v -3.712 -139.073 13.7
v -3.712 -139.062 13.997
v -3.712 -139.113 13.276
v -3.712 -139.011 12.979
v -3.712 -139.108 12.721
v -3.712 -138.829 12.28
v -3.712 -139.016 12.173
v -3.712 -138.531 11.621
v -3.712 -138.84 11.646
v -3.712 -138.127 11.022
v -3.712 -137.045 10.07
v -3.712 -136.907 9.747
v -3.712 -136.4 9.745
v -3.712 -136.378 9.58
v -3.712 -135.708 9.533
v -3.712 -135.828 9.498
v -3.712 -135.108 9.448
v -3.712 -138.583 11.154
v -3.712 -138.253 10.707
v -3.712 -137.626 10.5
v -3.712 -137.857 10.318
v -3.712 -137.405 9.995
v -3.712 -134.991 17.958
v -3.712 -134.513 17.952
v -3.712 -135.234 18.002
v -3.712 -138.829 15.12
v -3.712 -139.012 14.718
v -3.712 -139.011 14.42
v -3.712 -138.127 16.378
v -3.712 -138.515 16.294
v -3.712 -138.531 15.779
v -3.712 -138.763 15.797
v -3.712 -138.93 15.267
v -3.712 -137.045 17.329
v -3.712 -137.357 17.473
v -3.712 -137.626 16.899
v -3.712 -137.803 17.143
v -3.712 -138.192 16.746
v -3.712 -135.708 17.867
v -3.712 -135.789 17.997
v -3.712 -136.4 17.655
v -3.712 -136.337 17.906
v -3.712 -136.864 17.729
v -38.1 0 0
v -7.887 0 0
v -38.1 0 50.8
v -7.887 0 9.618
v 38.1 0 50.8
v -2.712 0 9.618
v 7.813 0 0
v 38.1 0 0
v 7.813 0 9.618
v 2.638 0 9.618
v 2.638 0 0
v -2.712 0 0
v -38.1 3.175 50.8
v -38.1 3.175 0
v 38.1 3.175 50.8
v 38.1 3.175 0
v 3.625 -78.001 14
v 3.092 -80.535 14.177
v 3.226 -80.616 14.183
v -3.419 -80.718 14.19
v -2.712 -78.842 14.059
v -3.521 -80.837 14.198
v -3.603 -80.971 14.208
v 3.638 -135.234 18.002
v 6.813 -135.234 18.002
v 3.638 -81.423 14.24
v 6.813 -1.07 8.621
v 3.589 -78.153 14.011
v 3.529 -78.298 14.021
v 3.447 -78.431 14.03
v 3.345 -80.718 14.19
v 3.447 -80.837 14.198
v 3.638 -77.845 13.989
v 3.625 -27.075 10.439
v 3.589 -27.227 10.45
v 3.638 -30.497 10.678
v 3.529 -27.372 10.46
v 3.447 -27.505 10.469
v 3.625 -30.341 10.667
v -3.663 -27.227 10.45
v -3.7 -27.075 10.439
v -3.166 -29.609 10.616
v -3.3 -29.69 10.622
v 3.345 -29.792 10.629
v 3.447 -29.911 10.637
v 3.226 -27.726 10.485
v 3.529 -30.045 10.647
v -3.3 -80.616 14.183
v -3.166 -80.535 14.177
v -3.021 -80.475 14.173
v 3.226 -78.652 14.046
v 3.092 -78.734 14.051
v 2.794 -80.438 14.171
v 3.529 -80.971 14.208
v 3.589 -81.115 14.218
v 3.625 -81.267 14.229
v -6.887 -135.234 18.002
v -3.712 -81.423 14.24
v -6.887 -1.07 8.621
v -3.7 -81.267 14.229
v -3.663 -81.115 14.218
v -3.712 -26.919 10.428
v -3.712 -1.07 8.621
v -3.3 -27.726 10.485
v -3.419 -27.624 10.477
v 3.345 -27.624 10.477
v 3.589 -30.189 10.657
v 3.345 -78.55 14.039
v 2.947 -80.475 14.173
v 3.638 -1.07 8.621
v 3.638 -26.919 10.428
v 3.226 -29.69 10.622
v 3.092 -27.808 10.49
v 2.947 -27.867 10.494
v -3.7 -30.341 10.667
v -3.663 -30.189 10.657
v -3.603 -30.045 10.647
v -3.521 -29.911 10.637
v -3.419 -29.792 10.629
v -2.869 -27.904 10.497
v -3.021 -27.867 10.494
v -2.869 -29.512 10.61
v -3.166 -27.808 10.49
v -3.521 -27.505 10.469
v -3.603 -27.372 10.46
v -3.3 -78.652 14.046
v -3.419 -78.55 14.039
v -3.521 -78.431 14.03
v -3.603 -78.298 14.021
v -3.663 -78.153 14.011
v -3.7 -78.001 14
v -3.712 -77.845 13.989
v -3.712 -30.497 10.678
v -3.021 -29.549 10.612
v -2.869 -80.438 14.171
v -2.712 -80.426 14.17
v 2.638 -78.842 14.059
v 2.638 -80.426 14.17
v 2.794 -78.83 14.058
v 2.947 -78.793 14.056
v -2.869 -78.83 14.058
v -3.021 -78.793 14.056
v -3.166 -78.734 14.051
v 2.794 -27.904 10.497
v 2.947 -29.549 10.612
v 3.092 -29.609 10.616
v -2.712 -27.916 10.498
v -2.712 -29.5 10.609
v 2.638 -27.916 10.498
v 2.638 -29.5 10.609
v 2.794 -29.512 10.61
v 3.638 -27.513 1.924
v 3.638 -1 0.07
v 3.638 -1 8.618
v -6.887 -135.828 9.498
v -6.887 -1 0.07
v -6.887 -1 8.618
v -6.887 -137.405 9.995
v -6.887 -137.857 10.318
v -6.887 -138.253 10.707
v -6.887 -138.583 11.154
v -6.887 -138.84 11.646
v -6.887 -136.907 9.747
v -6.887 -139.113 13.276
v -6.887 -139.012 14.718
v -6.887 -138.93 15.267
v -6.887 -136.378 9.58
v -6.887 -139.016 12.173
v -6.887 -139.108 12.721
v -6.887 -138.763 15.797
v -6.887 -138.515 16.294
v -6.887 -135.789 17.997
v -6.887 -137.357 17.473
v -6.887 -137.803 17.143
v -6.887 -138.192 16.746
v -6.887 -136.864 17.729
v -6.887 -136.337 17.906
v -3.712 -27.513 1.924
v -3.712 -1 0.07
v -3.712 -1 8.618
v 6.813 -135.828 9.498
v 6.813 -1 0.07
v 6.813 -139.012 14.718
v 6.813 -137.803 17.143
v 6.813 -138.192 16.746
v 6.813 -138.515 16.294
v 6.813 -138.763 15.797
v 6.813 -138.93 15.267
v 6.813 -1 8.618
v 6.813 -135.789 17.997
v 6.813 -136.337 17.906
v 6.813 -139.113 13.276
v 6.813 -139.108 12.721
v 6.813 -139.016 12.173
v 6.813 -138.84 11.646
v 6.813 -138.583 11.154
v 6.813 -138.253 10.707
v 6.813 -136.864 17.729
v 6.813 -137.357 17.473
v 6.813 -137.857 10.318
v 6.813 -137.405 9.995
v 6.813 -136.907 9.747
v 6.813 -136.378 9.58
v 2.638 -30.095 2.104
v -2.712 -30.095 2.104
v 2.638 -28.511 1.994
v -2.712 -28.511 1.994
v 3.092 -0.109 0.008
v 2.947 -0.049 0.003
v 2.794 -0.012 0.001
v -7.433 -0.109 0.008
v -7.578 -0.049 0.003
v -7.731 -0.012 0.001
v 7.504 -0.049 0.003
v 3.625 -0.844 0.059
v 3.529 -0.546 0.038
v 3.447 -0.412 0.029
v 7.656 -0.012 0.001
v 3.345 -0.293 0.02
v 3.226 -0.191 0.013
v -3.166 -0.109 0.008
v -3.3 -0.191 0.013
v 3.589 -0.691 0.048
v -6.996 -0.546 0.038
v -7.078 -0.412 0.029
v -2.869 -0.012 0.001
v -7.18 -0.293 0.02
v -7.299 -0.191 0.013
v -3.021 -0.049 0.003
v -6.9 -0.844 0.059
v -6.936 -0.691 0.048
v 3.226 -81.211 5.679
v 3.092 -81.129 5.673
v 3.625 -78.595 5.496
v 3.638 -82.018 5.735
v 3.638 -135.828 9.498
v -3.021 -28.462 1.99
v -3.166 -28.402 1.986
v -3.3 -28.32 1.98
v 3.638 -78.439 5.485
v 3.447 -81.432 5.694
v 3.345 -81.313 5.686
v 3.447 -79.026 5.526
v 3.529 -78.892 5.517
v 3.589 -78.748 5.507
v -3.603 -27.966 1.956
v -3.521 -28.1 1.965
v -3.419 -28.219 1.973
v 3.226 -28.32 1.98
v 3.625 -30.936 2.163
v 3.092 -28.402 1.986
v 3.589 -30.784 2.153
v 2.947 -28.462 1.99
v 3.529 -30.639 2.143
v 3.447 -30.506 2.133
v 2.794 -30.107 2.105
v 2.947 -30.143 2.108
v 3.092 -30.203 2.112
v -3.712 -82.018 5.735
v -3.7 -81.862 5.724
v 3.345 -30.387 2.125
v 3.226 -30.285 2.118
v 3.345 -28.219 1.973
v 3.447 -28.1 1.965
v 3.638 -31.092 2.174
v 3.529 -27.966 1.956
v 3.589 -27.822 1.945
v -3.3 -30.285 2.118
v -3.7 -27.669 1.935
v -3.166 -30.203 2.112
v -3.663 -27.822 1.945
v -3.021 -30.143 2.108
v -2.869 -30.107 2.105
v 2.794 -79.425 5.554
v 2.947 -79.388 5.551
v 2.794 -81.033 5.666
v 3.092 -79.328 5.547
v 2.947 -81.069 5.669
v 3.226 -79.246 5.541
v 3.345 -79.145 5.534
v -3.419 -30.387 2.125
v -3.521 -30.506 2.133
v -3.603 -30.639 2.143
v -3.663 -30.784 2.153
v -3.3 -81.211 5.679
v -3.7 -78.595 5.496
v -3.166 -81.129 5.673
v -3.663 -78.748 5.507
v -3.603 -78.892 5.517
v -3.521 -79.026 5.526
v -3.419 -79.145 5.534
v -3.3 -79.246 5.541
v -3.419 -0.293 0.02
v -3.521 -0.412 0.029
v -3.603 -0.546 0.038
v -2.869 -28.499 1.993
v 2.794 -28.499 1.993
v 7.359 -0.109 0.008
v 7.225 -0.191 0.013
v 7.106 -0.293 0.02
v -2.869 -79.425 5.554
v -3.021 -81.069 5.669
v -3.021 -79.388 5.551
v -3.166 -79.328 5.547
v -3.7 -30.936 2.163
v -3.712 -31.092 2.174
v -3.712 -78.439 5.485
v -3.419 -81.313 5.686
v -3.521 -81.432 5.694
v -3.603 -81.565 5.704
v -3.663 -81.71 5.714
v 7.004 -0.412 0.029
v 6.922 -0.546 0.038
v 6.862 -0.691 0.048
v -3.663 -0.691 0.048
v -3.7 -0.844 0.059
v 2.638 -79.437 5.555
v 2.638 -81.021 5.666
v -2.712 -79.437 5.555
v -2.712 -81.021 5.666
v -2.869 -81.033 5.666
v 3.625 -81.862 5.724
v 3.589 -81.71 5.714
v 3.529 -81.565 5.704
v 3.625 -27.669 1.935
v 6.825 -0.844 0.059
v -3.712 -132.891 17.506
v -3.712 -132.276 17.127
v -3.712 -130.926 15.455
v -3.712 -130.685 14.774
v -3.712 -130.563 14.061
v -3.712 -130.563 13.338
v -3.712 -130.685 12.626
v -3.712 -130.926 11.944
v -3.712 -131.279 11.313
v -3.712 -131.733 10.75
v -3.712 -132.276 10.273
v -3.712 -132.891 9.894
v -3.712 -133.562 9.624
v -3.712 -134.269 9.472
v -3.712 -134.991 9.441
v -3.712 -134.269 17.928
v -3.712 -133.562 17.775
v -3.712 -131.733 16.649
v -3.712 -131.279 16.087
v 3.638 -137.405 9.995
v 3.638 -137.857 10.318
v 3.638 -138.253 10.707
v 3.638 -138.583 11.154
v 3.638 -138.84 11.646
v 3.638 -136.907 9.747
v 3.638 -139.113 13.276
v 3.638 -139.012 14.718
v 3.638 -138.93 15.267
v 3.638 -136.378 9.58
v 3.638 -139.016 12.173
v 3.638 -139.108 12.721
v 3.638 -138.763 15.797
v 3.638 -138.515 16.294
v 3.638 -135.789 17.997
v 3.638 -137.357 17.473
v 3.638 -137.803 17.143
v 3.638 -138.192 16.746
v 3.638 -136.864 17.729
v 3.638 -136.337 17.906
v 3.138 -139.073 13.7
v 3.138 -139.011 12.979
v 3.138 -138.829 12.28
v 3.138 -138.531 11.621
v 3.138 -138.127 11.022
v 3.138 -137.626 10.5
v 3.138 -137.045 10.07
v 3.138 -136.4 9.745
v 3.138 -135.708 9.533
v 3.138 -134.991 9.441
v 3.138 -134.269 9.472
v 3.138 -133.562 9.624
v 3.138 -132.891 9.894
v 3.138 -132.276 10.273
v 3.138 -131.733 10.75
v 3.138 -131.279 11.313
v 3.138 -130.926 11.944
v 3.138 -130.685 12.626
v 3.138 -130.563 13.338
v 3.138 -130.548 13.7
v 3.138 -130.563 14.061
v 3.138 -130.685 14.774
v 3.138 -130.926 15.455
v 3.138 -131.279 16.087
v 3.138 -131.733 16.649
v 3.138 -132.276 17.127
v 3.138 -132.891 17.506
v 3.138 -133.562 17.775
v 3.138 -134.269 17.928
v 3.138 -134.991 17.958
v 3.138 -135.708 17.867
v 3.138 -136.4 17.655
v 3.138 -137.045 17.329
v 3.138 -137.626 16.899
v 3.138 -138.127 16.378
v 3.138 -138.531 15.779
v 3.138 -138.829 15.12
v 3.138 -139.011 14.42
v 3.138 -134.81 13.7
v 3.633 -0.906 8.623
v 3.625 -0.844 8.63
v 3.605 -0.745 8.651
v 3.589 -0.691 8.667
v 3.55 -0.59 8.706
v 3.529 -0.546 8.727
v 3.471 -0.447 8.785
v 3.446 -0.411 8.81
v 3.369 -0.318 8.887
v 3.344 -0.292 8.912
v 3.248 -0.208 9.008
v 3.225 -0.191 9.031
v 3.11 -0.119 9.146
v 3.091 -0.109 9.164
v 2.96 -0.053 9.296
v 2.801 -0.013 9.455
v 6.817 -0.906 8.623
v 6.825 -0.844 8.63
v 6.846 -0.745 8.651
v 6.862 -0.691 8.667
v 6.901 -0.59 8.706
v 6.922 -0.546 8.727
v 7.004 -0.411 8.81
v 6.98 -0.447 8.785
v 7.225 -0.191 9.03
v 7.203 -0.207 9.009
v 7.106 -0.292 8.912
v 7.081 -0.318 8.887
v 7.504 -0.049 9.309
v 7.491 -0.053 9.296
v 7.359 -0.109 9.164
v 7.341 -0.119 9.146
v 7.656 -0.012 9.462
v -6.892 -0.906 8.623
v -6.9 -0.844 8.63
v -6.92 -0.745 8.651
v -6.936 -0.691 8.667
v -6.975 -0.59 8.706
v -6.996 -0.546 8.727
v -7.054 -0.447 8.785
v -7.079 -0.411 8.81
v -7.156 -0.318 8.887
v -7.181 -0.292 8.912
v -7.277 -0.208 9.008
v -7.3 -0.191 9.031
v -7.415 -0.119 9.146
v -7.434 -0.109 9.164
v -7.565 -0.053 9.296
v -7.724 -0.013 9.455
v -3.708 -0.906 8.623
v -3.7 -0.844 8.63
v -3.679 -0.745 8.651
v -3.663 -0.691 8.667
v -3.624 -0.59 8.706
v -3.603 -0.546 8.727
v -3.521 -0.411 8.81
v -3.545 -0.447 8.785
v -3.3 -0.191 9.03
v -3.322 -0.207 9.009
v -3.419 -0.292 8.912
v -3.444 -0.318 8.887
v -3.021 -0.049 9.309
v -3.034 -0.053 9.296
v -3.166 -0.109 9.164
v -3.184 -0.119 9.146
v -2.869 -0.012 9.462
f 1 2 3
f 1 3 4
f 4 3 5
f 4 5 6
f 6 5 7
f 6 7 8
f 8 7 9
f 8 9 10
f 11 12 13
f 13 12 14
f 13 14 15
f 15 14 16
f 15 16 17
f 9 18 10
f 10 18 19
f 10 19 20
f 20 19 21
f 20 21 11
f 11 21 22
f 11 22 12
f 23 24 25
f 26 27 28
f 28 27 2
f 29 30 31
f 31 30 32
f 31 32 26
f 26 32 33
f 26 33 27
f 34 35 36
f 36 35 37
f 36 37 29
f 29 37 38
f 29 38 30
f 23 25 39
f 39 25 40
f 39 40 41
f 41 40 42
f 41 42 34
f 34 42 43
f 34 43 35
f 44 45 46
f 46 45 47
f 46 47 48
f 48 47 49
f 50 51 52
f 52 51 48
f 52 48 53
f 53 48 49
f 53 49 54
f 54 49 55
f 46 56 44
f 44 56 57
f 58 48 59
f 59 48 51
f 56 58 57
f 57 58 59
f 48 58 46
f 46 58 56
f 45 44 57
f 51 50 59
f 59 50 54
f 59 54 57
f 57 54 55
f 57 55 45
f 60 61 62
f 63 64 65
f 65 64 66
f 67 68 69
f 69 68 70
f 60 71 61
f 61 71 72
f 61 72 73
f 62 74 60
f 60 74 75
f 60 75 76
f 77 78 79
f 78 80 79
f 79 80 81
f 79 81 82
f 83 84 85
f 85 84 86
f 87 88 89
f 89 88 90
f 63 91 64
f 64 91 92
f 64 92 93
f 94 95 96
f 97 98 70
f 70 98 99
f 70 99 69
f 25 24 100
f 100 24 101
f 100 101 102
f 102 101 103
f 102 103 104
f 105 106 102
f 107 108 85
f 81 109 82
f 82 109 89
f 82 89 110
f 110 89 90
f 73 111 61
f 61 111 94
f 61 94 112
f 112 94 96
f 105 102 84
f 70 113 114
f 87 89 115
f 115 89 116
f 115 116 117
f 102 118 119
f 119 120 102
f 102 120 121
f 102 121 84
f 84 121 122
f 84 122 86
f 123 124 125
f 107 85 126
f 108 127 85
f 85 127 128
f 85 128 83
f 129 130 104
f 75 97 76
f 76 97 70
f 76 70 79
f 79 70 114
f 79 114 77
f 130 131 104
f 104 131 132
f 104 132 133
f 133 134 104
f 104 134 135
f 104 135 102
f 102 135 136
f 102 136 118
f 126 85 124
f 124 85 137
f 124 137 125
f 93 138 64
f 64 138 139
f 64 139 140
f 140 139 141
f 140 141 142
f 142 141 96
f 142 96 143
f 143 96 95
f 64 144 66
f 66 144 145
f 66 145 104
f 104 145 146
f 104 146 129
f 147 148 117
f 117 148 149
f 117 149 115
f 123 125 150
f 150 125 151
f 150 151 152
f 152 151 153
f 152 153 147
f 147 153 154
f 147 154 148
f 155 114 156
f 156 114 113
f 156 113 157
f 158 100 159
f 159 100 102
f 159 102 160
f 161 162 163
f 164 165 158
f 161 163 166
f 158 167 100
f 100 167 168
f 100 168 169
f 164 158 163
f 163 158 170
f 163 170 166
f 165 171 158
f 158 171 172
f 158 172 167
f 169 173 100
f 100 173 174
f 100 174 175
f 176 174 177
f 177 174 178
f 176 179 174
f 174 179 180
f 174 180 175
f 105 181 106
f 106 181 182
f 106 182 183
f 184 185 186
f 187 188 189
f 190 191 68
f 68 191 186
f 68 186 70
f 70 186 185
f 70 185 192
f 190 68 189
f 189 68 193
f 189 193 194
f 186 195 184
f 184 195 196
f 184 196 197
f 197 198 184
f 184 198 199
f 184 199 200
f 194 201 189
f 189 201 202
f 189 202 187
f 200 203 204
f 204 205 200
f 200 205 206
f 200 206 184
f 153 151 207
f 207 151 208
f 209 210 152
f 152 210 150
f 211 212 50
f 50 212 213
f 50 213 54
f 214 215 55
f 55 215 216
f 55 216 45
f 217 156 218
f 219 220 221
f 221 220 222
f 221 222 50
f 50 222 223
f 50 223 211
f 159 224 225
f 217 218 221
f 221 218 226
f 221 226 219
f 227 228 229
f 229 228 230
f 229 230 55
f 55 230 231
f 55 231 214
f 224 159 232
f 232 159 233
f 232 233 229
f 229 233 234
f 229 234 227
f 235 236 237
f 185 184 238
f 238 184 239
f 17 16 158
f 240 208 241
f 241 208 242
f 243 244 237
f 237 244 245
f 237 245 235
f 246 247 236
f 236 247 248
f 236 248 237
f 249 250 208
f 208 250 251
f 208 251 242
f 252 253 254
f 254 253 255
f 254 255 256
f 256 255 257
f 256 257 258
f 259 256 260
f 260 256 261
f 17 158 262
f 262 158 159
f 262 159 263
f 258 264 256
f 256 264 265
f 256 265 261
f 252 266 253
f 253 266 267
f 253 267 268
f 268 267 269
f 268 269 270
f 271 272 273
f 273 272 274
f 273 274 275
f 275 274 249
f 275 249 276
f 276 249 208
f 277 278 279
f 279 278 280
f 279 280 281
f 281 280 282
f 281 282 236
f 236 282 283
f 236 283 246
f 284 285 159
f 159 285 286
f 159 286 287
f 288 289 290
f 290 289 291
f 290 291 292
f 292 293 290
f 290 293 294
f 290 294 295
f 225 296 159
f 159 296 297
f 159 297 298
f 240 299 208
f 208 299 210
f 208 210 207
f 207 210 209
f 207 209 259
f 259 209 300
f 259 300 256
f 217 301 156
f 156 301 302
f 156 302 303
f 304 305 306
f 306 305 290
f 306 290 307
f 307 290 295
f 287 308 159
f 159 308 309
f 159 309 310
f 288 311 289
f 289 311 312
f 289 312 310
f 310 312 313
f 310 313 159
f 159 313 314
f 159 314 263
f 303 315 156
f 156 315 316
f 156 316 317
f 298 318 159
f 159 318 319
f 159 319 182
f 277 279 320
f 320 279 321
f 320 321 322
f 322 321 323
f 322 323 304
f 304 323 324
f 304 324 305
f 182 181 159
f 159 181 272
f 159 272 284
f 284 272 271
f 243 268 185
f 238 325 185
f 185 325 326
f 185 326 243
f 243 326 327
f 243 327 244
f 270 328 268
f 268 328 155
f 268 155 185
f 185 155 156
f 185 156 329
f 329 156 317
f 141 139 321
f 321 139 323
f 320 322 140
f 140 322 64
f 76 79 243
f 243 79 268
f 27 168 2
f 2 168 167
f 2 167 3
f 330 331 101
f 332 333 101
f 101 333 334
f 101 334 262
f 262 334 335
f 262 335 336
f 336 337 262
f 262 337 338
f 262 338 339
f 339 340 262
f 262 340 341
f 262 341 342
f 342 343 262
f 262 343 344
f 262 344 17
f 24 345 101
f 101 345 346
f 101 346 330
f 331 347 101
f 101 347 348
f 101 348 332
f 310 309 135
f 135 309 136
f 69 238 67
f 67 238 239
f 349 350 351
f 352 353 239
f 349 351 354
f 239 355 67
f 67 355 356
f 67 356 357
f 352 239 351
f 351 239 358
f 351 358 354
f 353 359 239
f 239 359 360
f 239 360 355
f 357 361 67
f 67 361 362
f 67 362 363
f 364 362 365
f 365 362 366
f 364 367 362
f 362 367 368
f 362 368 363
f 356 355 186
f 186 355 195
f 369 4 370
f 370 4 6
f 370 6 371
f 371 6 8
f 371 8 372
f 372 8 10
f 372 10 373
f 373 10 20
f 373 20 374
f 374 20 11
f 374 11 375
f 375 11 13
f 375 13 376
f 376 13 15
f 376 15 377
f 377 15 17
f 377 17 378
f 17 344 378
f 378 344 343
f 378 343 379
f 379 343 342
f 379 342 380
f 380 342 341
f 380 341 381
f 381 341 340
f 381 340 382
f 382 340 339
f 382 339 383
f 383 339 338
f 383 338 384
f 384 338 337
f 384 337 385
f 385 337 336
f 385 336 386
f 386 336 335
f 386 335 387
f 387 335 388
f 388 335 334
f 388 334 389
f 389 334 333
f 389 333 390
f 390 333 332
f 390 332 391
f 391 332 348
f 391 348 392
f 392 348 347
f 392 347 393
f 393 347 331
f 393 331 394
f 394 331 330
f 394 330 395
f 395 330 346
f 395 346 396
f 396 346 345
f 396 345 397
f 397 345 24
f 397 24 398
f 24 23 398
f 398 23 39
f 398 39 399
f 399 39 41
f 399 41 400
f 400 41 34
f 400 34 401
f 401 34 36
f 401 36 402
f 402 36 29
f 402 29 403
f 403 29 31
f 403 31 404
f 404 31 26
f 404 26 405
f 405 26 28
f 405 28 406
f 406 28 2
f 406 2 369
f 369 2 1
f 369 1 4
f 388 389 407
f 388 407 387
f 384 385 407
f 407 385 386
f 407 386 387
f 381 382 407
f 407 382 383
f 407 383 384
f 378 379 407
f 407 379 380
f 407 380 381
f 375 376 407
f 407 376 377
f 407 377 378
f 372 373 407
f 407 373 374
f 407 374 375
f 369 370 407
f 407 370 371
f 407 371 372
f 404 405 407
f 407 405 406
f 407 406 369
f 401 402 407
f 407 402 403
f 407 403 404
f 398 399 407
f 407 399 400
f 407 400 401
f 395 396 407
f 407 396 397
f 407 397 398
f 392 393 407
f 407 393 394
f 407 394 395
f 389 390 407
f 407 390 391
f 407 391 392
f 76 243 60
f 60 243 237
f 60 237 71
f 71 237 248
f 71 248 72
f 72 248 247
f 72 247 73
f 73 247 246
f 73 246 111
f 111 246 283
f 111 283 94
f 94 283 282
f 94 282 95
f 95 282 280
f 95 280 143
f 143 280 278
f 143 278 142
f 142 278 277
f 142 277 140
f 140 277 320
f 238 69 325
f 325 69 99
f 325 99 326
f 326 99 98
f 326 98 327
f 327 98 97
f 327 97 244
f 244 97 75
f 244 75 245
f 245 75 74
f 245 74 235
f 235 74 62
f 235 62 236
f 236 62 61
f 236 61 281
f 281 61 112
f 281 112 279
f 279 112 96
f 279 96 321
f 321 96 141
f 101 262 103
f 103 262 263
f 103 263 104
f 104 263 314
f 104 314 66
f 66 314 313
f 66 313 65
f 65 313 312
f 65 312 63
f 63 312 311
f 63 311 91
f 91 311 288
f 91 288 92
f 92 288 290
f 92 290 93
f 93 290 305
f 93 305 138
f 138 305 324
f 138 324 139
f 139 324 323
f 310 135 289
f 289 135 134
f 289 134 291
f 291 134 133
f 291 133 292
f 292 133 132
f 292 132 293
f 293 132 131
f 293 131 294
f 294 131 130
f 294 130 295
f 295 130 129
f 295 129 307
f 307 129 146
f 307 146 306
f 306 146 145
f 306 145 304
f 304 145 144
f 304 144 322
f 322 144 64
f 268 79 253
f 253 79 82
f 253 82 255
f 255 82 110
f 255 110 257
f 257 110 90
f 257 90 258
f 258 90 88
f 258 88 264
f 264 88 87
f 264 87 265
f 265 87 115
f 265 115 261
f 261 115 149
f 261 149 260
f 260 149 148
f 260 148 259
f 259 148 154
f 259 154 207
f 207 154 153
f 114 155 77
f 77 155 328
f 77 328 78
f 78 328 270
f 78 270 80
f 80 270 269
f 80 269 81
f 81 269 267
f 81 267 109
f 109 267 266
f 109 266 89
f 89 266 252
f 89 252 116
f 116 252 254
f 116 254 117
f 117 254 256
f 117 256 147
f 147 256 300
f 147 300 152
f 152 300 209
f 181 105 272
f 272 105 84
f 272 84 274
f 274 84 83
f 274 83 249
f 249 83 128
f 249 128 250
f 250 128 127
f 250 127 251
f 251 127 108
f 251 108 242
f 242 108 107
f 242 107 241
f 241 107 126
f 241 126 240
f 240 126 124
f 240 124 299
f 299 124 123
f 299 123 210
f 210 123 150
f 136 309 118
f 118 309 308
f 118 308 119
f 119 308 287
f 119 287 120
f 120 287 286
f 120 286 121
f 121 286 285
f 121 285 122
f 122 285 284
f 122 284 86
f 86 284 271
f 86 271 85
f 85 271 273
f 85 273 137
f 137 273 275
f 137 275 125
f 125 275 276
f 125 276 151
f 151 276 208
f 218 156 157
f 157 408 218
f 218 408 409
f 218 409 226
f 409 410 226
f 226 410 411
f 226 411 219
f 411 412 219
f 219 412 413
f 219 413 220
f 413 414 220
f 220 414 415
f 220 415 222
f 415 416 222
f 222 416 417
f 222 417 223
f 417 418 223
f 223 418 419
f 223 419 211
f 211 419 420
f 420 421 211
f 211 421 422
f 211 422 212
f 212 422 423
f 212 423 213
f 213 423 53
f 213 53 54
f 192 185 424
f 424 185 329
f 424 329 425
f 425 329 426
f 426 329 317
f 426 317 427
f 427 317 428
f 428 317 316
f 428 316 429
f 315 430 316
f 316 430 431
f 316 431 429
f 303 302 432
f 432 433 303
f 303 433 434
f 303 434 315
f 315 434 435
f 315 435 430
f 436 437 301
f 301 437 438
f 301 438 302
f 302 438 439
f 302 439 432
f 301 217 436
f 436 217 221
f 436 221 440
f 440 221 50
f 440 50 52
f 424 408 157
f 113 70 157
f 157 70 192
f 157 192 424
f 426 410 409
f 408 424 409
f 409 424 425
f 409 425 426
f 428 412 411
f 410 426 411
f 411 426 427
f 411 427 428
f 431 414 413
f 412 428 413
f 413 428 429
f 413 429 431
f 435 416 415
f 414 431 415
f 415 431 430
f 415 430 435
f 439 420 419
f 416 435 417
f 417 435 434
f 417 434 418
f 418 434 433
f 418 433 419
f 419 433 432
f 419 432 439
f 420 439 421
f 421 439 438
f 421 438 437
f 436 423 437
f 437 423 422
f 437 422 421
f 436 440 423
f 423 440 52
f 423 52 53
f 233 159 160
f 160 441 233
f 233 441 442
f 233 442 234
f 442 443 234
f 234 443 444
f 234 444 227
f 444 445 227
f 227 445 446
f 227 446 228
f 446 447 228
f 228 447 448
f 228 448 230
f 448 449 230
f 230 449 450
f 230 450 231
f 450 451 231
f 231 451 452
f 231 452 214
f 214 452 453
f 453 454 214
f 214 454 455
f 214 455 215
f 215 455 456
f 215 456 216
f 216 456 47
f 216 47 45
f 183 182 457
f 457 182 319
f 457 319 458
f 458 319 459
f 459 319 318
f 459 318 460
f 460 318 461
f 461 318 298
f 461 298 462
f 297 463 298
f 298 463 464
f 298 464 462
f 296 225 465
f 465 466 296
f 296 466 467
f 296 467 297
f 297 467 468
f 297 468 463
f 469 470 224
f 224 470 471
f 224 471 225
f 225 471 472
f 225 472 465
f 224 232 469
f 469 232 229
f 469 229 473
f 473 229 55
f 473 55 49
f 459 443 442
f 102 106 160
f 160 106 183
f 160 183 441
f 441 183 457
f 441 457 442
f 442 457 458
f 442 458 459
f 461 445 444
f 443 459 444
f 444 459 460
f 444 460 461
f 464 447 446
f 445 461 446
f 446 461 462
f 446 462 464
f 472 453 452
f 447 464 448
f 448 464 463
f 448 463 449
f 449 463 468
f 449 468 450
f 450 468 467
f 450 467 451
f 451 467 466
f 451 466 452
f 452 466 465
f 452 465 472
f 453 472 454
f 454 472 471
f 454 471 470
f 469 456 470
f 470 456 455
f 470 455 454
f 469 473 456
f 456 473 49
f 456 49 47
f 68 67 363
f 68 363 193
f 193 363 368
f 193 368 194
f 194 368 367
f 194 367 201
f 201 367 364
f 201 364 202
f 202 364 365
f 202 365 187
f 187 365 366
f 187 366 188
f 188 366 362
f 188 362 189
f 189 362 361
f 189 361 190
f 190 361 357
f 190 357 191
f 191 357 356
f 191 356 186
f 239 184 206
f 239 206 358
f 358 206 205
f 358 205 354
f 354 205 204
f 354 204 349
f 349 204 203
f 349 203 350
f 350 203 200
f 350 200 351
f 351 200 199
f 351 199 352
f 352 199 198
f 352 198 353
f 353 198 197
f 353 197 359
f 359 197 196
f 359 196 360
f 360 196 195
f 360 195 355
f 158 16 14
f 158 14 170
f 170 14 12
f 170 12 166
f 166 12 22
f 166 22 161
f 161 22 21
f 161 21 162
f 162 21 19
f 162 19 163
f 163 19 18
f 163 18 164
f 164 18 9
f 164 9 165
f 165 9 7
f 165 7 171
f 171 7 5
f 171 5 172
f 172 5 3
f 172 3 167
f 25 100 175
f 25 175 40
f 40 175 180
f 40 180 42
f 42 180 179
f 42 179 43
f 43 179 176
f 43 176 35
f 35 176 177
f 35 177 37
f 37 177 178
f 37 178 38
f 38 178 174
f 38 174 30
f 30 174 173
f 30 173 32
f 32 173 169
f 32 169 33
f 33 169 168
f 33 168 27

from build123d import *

# Parameters (mm, degrees)
SKETCH4_W           = 76.2
SKETCH4_H           = 3.175
BOSS_EXTRUDE4_DEPTH = 50.8
SKETCH5_W           = 7.35
SKETCH5_H           = 49.462905427
BOSS_EXTRUDE5_DEPTH = 8.525
SKETCH6_R           = 4.2625
BOSS_EXTRUDE6_DEPTH = 6.85
FILLET1_R           = 1
FILLET2_R           = 3.54


with BuildPart() as part:
    # Sketch4 → Boss-Extrude4 (new body)
    with BuildSketch(Plane.XY):
        with Locations((0, 1.5875)):
            Rectangle(SKETCH4_W, SKETCH4_H)
    extrude(amount=BOSS_EXTRUDE4_DEPTH)

    # Sketch5 → Boss-Extrude5 (add)
    with BuildSketch(Plane(origin=(0, 0, 0), x_dir=(1, 0, 0), z_dir=(0, 0.06975647374412547, 0.9975640502598243))):
        Polygon((-3.712235216, 0), (-6.887235216, 0), (-6.887235216, -139.7), (-3.712235216, -139.7), (-3.712235216, -81.218439027), (3.637764784, -81.218439027), (3.637764784, -139.7), (6.812764784, -139.7), (6.812764784, 0), (3.637764784, 0), (3.637764784, -28.5805336), (-3.712235216, -28.5805336), align=None)
        with Locations((-0.037235216, -54.899486314)):
            Rectangle(SKETCH5_W, SKETCH5_H, mode=Mode.SUBTRACT)
    extrude(amount=BOSS_EXTRUDE5_DEPTH)

    # Sketch6 → Boss-Extrude6 (add)
    with BuildSketch(Plane(origin=(-3.712235216, 0, 0), x_dir=(0, 0, -1), z_dir=(1, 0, 0))):
        with Locations((-13.699759177, -134.810244088)):
            Circle(SKETCH6_R)
    extrude(amount=BOSS_EXTRUDE6_DEPTH)

    # Fillet1
    fillet1_edges = [part.edges().sort_by_distance(p)[0] for p in [
        (6.812764784, 0, 4.272908591),
        (-6.887235216, 0, 4.272908591),
        (3.637764784, 0, 4.272908591),
        (-3.712235216, 0, 4.272908591),
        (5.225264784, 0, 8.545817181),
        (-5.299735216, 0, 8.545817181),
        (3.637764784, -79.139625092, 9.806890272),
        (3.637764784, -80.723258022, 9.917628674),
        (-3.712235216, -80.723258022, 9.917628674),
        (-3.712235216, -79.139625092, 9.806890272),
        (3.637764784, -29.797208817, 6.356532408),
        (3.637764784, -28.213575887, 6.245794006),
        (-3.712235216, -28.213575887, 6.245794006),
        (-3.712235216, -29.797208817, 6.356532408),
    ]]
    fillet(fillet1_edges, radius=FILLET1_R)

    # Fillet2
    fillet2_edges = [part.edges().sort_by_distance(p)[0] for p in [
        (5.225264784, -138.765023883, 18.249212911),
        (5.225264784, -139.359697821, 9.744979382),
        (-5.299735216, -139.359697821, 9.744979382),
        (-5.299735216, -138.765023883, 18.249212911),
    ]]
    fillet(fillet2_edges, radius=FILLET2_R)


solid = part.part
